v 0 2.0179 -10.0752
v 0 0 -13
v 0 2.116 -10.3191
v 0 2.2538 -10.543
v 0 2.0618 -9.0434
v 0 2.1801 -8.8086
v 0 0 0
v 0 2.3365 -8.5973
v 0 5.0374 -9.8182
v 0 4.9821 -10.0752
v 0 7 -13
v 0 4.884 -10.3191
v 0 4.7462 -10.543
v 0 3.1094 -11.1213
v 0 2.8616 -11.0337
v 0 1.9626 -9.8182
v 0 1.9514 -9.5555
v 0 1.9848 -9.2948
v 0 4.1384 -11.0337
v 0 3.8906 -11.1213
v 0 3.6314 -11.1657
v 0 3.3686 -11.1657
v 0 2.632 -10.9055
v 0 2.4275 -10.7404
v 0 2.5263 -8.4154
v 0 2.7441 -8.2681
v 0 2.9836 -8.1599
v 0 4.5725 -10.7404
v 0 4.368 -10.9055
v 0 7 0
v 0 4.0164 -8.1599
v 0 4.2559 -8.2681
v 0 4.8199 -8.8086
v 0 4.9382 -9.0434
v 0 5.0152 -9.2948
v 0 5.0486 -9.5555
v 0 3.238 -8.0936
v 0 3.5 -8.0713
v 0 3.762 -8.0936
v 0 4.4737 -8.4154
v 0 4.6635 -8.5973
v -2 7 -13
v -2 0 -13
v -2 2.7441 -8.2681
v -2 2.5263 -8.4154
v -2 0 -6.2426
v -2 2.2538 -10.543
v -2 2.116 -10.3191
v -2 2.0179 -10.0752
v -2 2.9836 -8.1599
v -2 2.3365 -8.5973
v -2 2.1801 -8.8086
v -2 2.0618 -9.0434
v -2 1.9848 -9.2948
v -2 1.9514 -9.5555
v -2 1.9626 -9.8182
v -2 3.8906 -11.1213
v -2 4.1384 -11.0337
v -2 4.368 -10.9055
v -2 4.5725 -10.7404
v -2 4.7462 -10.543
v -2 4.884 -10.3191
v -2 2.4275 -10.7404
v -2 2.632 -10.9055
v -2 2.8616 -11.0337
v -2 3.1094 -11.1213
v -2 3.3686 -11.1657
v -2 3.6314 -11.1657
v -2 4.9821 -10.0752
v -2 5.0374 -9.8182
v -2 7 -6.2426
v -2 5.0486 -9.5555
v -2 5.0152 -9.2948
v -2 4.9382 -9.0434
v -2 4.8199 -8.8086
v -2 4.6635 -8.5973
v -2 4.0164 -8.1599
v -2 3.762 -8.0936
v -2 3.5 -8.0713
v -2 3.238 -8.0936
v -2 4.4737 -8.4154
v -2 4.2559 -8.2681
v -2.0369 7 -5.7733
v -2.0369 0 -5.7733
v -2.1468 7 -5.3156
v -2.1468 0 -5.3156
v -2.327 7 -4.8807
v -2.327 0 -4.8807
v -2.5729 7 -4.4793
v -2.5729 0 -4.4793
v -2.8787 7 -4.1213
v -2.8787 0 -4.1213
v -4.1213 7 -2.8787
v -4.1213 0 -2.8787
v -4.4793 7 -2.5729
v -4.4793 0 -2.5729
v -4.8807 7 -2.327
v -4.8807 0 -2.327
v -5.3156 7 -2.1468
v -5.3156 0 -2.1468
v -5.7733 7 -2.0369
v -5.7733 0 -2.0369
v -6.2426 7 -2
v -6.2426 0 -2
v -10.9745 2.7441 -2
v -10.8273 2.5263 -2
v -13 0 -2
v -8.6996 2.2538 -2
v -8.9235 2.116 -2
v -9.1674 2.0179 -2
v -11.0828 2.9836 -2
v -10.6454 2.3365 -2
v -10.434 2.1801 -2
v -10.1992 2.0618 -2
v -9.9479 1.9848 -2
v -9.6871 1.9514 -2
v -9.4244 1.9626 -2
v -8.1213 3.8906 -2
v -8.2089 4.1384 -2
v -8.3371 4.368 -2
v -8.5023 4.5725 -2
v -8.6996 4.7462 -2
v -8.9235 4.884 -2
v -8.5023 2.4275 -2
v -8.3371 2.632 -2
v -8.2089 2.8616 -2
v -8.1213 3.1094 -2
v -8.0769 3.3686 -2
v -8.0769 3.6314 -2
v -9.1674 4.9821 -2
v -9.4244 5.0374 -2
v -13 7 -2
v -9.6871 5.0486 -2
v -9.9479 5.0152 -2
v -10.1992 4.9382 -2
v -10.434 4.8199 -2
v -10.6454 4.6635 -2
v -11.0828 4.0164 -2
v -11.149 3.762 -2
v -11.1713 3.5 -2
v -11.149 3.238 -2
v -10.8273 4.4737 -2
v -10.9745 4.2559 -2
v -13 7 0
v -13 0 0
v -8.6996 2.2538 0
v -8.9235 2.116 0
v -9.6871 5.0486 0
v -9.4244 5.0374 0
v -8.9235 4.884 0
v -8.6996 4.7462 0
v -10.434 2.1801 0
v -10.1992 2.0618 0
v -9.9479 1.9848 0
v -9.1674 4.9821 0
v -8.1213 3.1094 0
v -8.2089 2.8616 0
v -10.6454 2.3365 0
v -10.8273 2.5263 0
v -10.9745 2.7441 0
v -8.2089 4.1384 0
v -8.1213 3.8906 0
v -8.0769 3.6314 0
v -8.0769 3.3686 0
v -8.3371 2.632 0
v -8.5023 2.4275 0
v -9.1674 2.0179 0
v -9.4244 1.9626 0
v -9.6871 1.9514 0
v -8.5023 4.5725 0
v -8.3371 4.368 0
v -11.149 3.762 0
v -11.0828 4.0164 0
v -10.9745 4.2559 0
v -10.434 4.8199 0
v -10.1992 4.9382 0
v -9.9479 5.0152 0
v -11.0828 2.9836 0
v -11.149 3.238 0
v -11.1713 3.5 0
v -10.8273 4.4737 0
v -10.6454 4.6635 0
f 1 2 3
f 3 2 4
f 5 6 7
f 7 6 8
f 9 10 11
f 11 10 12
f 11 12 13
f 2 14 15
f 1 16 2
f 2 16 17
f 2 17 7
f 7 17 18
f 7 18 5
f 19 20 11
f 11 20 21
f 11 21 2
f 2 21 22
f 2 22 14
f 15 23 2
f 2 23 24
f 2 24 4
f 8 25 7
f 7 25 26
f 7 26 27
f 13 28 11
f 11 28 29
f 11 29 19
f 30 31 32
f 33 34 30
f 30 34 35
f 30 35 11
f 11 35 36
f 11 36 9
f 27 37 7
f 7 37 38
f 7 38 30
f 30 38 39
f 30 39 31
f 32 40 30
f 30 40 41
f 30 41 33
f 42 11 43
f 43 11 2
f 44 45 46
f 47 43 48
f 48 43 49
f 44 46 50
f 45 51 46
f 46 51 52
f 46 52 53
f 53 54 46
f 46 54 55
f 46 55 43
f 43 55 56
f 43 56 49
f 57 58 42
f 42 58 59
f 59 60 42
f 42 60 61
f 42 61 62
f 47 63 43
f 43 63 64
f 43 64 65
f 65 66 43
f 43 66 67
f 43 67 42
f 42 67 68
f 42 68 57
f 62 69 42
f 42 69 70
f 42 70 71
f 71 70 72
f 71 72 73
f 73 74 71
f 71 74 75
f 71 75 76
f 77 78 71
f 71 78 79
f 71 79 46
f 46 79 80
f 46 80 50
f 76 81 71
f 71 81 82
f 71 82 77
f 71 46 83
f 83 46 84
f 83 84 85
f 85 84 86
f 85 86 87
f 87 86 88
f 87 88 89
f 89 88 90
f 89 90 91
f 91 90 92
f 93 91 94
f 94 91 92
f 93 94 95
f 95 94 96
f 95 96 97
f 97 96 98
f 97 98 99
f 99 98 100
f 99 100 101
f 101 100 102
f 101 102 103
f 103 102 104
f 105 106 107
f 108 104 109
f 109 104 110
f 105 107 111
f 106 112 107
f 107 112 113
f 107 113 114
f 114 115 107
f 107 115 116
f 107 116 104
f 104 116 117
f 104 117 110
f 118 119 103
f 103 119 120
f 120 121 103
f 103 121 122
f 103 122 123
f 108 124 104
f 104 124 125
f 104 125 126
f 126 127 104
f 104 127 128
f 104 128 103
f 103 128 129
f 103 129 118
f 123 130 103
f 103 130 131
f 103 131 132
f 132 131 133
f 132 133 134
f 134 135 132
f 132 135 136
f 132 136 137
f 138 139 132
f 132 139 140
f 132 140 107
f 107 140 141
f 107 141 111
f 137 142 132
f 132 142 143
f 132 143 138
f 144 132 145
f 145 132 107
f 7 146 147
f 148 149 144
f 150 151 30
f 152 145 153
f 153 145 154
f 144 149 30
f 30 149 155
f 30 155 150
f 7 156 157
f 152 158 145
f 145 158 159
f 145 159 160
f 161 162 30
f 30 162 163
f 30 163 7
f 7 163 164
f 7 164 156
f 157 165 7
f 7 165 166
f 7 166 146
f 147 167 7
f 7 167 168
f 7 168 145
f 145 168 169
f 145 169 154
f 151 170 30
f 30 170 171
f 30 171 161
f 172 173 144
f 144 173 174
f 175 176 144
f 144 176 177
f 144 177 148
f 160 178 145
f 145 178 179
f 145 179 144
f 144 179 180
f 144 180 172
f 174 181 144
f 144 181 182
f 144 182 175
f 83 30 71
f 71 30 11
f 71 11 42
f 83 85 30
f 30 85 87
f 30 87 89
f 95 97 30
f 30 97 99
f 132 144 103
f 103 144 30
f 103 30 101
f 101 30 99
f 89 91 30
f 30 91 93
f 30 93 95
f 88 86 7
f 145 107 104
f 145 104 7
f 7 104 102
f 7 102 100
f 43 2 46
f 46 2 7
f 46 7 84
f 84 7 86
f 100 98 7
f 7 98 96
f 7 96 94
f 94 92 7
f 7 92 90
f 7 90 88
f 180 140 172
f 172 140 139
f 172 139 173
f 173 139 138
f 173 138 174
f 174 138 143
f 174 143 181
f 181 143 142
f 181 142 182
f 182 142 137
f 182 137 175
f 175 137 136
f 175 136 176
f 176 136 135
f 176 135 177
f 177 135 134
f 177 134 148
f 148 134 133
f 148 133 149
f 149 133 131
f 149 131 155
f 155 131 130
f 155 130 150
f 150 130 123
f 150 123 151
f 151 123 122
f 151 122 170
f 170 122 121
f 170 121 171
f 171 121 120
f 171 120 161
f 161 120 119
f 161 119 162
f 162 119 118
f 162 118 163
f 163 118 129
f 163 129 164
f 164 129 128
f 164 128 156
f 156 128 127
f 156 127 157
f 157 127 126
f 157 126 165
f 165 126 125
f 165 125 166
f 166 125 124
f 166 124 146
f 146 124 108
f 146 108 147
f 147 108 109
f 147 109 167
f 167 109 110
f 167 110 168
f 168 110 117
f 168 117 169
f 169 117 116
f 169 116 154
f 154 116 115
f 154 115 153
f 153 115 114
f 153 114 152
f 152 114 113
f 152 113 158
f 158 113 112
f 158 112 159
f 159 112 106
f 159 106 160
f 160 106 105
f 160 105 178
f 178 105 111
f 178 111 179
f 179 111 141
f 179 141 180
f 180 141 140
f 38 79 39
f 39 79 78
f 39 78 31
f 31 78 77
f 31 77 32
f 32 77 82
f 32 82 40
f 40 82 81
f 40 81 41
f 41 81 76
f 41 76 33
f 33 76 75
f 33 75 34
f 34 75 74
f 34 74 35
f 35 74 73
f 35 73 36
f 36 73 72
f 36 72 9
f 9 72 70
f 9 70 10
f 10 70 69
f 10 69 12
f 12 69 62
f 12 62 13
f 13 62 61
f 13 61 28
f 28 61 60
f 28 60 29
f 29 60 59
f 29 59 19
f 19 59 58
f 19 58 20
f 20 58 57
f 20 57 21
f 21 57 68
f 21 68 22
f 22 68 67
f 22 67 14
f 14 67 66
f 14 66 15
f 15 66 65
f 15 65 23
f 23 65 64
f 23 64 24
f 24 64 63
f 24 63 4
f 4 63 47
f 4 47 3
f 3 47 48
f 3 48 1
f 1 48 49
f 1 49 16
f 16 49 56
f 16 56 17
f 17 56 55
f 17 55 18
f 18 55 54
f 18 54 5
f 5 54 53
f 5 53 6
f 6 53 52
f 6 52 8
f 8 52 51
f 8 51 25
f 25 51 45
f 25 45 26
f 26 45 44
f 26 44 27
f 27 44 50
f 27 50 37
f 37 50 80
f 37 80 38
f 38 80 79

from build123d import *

# Parameters (mm, degrees)
BOSS_EXTRUDE1_DEPTH = 7
CUT_EXTRUDE1_REACH  = 20.412
SKETCH3_R           = 1.55
CUT_EXTRUDE2_REACH  = 20.412
SKETCH4_R           = 1.55


with BuildPart() as part:
    # Sketch1 → Boss-Extrude1 (new body)
    with BuildSketch(Plane(origin=(0, 0, 0), x_dir=(1, 0, 0), z_dir=(0, 1, 0))):
        with BuildLine():
            Line((0, 0), (-13, 0))
            Line((-13, 0), (-13, 2))
            Line((-13, 2), (-6.242640687, 2))
            ThreePointArc((-6.242640687, 2), (-5.09459039, 2.228361402), (-4.121320344, 2.878679656))
            Line((-4.121320344, 2.878679656), (-2.878679656, 4.121320344))
            ThreePointArc((-2.878679656, 4.121320344), (-2.228361402, 5.09459039), (-2, 6.242640687))
            Line((-2, 6.242640687), (-2, 13))
            Line((-2, 13), (0, 13))
            Line((0, 13), (0, 0))
        make_face()
    extrude(amount=BOSS_EXTRUDE1_DEPTH)

    # Sketch3 → Cut-Extrude1 (cut, up to next)
    with BuildSketch(Plane(origin=(0, 0, -2), x_dir=(-1, 0, 0), z_dir=(0, 0, -1)), mode=Mode.PRIVATE) as cut_extrude1_sk1:
        with Locations((9.621320344, 3.5)):
            Circle(SKETCH3_R)
    cut_extrude1_tool1 = extrude(cut_extrude1_sk1.sketch, amount=-CUT_EXTRUDE1_REACH, mode=Mode.PRIVATE) & part.part
    add(cut_extrude1_tool1.solids().sort_by_distance((-9.62132, 3.5, -2))[0], mode=Mode.SUBTRACT)

    # Sketch4 → Cut-Extrude2 (cut, up to next)
    with BuildSketch(Plane.ZY.offset(2), mode=Mode.PRIVATE) as cut_extrude2_sk1:
        with Locations((-9.621320344, 3.5)):
            Circle(SKETCH4_R)
    cut_extrude2_tool1 = extrude(cut_extrude2_sk1.sketch, amount=-CUT_EXTRUDE2_REACH, mode=Mode.PRIVATE) & part.part
    add(cut_extrude2_tool1.solids().sort_by_distance((-2, 3.5, -9.62132))[0], mode=Mode.SUBTRACT)


solid = part.part
